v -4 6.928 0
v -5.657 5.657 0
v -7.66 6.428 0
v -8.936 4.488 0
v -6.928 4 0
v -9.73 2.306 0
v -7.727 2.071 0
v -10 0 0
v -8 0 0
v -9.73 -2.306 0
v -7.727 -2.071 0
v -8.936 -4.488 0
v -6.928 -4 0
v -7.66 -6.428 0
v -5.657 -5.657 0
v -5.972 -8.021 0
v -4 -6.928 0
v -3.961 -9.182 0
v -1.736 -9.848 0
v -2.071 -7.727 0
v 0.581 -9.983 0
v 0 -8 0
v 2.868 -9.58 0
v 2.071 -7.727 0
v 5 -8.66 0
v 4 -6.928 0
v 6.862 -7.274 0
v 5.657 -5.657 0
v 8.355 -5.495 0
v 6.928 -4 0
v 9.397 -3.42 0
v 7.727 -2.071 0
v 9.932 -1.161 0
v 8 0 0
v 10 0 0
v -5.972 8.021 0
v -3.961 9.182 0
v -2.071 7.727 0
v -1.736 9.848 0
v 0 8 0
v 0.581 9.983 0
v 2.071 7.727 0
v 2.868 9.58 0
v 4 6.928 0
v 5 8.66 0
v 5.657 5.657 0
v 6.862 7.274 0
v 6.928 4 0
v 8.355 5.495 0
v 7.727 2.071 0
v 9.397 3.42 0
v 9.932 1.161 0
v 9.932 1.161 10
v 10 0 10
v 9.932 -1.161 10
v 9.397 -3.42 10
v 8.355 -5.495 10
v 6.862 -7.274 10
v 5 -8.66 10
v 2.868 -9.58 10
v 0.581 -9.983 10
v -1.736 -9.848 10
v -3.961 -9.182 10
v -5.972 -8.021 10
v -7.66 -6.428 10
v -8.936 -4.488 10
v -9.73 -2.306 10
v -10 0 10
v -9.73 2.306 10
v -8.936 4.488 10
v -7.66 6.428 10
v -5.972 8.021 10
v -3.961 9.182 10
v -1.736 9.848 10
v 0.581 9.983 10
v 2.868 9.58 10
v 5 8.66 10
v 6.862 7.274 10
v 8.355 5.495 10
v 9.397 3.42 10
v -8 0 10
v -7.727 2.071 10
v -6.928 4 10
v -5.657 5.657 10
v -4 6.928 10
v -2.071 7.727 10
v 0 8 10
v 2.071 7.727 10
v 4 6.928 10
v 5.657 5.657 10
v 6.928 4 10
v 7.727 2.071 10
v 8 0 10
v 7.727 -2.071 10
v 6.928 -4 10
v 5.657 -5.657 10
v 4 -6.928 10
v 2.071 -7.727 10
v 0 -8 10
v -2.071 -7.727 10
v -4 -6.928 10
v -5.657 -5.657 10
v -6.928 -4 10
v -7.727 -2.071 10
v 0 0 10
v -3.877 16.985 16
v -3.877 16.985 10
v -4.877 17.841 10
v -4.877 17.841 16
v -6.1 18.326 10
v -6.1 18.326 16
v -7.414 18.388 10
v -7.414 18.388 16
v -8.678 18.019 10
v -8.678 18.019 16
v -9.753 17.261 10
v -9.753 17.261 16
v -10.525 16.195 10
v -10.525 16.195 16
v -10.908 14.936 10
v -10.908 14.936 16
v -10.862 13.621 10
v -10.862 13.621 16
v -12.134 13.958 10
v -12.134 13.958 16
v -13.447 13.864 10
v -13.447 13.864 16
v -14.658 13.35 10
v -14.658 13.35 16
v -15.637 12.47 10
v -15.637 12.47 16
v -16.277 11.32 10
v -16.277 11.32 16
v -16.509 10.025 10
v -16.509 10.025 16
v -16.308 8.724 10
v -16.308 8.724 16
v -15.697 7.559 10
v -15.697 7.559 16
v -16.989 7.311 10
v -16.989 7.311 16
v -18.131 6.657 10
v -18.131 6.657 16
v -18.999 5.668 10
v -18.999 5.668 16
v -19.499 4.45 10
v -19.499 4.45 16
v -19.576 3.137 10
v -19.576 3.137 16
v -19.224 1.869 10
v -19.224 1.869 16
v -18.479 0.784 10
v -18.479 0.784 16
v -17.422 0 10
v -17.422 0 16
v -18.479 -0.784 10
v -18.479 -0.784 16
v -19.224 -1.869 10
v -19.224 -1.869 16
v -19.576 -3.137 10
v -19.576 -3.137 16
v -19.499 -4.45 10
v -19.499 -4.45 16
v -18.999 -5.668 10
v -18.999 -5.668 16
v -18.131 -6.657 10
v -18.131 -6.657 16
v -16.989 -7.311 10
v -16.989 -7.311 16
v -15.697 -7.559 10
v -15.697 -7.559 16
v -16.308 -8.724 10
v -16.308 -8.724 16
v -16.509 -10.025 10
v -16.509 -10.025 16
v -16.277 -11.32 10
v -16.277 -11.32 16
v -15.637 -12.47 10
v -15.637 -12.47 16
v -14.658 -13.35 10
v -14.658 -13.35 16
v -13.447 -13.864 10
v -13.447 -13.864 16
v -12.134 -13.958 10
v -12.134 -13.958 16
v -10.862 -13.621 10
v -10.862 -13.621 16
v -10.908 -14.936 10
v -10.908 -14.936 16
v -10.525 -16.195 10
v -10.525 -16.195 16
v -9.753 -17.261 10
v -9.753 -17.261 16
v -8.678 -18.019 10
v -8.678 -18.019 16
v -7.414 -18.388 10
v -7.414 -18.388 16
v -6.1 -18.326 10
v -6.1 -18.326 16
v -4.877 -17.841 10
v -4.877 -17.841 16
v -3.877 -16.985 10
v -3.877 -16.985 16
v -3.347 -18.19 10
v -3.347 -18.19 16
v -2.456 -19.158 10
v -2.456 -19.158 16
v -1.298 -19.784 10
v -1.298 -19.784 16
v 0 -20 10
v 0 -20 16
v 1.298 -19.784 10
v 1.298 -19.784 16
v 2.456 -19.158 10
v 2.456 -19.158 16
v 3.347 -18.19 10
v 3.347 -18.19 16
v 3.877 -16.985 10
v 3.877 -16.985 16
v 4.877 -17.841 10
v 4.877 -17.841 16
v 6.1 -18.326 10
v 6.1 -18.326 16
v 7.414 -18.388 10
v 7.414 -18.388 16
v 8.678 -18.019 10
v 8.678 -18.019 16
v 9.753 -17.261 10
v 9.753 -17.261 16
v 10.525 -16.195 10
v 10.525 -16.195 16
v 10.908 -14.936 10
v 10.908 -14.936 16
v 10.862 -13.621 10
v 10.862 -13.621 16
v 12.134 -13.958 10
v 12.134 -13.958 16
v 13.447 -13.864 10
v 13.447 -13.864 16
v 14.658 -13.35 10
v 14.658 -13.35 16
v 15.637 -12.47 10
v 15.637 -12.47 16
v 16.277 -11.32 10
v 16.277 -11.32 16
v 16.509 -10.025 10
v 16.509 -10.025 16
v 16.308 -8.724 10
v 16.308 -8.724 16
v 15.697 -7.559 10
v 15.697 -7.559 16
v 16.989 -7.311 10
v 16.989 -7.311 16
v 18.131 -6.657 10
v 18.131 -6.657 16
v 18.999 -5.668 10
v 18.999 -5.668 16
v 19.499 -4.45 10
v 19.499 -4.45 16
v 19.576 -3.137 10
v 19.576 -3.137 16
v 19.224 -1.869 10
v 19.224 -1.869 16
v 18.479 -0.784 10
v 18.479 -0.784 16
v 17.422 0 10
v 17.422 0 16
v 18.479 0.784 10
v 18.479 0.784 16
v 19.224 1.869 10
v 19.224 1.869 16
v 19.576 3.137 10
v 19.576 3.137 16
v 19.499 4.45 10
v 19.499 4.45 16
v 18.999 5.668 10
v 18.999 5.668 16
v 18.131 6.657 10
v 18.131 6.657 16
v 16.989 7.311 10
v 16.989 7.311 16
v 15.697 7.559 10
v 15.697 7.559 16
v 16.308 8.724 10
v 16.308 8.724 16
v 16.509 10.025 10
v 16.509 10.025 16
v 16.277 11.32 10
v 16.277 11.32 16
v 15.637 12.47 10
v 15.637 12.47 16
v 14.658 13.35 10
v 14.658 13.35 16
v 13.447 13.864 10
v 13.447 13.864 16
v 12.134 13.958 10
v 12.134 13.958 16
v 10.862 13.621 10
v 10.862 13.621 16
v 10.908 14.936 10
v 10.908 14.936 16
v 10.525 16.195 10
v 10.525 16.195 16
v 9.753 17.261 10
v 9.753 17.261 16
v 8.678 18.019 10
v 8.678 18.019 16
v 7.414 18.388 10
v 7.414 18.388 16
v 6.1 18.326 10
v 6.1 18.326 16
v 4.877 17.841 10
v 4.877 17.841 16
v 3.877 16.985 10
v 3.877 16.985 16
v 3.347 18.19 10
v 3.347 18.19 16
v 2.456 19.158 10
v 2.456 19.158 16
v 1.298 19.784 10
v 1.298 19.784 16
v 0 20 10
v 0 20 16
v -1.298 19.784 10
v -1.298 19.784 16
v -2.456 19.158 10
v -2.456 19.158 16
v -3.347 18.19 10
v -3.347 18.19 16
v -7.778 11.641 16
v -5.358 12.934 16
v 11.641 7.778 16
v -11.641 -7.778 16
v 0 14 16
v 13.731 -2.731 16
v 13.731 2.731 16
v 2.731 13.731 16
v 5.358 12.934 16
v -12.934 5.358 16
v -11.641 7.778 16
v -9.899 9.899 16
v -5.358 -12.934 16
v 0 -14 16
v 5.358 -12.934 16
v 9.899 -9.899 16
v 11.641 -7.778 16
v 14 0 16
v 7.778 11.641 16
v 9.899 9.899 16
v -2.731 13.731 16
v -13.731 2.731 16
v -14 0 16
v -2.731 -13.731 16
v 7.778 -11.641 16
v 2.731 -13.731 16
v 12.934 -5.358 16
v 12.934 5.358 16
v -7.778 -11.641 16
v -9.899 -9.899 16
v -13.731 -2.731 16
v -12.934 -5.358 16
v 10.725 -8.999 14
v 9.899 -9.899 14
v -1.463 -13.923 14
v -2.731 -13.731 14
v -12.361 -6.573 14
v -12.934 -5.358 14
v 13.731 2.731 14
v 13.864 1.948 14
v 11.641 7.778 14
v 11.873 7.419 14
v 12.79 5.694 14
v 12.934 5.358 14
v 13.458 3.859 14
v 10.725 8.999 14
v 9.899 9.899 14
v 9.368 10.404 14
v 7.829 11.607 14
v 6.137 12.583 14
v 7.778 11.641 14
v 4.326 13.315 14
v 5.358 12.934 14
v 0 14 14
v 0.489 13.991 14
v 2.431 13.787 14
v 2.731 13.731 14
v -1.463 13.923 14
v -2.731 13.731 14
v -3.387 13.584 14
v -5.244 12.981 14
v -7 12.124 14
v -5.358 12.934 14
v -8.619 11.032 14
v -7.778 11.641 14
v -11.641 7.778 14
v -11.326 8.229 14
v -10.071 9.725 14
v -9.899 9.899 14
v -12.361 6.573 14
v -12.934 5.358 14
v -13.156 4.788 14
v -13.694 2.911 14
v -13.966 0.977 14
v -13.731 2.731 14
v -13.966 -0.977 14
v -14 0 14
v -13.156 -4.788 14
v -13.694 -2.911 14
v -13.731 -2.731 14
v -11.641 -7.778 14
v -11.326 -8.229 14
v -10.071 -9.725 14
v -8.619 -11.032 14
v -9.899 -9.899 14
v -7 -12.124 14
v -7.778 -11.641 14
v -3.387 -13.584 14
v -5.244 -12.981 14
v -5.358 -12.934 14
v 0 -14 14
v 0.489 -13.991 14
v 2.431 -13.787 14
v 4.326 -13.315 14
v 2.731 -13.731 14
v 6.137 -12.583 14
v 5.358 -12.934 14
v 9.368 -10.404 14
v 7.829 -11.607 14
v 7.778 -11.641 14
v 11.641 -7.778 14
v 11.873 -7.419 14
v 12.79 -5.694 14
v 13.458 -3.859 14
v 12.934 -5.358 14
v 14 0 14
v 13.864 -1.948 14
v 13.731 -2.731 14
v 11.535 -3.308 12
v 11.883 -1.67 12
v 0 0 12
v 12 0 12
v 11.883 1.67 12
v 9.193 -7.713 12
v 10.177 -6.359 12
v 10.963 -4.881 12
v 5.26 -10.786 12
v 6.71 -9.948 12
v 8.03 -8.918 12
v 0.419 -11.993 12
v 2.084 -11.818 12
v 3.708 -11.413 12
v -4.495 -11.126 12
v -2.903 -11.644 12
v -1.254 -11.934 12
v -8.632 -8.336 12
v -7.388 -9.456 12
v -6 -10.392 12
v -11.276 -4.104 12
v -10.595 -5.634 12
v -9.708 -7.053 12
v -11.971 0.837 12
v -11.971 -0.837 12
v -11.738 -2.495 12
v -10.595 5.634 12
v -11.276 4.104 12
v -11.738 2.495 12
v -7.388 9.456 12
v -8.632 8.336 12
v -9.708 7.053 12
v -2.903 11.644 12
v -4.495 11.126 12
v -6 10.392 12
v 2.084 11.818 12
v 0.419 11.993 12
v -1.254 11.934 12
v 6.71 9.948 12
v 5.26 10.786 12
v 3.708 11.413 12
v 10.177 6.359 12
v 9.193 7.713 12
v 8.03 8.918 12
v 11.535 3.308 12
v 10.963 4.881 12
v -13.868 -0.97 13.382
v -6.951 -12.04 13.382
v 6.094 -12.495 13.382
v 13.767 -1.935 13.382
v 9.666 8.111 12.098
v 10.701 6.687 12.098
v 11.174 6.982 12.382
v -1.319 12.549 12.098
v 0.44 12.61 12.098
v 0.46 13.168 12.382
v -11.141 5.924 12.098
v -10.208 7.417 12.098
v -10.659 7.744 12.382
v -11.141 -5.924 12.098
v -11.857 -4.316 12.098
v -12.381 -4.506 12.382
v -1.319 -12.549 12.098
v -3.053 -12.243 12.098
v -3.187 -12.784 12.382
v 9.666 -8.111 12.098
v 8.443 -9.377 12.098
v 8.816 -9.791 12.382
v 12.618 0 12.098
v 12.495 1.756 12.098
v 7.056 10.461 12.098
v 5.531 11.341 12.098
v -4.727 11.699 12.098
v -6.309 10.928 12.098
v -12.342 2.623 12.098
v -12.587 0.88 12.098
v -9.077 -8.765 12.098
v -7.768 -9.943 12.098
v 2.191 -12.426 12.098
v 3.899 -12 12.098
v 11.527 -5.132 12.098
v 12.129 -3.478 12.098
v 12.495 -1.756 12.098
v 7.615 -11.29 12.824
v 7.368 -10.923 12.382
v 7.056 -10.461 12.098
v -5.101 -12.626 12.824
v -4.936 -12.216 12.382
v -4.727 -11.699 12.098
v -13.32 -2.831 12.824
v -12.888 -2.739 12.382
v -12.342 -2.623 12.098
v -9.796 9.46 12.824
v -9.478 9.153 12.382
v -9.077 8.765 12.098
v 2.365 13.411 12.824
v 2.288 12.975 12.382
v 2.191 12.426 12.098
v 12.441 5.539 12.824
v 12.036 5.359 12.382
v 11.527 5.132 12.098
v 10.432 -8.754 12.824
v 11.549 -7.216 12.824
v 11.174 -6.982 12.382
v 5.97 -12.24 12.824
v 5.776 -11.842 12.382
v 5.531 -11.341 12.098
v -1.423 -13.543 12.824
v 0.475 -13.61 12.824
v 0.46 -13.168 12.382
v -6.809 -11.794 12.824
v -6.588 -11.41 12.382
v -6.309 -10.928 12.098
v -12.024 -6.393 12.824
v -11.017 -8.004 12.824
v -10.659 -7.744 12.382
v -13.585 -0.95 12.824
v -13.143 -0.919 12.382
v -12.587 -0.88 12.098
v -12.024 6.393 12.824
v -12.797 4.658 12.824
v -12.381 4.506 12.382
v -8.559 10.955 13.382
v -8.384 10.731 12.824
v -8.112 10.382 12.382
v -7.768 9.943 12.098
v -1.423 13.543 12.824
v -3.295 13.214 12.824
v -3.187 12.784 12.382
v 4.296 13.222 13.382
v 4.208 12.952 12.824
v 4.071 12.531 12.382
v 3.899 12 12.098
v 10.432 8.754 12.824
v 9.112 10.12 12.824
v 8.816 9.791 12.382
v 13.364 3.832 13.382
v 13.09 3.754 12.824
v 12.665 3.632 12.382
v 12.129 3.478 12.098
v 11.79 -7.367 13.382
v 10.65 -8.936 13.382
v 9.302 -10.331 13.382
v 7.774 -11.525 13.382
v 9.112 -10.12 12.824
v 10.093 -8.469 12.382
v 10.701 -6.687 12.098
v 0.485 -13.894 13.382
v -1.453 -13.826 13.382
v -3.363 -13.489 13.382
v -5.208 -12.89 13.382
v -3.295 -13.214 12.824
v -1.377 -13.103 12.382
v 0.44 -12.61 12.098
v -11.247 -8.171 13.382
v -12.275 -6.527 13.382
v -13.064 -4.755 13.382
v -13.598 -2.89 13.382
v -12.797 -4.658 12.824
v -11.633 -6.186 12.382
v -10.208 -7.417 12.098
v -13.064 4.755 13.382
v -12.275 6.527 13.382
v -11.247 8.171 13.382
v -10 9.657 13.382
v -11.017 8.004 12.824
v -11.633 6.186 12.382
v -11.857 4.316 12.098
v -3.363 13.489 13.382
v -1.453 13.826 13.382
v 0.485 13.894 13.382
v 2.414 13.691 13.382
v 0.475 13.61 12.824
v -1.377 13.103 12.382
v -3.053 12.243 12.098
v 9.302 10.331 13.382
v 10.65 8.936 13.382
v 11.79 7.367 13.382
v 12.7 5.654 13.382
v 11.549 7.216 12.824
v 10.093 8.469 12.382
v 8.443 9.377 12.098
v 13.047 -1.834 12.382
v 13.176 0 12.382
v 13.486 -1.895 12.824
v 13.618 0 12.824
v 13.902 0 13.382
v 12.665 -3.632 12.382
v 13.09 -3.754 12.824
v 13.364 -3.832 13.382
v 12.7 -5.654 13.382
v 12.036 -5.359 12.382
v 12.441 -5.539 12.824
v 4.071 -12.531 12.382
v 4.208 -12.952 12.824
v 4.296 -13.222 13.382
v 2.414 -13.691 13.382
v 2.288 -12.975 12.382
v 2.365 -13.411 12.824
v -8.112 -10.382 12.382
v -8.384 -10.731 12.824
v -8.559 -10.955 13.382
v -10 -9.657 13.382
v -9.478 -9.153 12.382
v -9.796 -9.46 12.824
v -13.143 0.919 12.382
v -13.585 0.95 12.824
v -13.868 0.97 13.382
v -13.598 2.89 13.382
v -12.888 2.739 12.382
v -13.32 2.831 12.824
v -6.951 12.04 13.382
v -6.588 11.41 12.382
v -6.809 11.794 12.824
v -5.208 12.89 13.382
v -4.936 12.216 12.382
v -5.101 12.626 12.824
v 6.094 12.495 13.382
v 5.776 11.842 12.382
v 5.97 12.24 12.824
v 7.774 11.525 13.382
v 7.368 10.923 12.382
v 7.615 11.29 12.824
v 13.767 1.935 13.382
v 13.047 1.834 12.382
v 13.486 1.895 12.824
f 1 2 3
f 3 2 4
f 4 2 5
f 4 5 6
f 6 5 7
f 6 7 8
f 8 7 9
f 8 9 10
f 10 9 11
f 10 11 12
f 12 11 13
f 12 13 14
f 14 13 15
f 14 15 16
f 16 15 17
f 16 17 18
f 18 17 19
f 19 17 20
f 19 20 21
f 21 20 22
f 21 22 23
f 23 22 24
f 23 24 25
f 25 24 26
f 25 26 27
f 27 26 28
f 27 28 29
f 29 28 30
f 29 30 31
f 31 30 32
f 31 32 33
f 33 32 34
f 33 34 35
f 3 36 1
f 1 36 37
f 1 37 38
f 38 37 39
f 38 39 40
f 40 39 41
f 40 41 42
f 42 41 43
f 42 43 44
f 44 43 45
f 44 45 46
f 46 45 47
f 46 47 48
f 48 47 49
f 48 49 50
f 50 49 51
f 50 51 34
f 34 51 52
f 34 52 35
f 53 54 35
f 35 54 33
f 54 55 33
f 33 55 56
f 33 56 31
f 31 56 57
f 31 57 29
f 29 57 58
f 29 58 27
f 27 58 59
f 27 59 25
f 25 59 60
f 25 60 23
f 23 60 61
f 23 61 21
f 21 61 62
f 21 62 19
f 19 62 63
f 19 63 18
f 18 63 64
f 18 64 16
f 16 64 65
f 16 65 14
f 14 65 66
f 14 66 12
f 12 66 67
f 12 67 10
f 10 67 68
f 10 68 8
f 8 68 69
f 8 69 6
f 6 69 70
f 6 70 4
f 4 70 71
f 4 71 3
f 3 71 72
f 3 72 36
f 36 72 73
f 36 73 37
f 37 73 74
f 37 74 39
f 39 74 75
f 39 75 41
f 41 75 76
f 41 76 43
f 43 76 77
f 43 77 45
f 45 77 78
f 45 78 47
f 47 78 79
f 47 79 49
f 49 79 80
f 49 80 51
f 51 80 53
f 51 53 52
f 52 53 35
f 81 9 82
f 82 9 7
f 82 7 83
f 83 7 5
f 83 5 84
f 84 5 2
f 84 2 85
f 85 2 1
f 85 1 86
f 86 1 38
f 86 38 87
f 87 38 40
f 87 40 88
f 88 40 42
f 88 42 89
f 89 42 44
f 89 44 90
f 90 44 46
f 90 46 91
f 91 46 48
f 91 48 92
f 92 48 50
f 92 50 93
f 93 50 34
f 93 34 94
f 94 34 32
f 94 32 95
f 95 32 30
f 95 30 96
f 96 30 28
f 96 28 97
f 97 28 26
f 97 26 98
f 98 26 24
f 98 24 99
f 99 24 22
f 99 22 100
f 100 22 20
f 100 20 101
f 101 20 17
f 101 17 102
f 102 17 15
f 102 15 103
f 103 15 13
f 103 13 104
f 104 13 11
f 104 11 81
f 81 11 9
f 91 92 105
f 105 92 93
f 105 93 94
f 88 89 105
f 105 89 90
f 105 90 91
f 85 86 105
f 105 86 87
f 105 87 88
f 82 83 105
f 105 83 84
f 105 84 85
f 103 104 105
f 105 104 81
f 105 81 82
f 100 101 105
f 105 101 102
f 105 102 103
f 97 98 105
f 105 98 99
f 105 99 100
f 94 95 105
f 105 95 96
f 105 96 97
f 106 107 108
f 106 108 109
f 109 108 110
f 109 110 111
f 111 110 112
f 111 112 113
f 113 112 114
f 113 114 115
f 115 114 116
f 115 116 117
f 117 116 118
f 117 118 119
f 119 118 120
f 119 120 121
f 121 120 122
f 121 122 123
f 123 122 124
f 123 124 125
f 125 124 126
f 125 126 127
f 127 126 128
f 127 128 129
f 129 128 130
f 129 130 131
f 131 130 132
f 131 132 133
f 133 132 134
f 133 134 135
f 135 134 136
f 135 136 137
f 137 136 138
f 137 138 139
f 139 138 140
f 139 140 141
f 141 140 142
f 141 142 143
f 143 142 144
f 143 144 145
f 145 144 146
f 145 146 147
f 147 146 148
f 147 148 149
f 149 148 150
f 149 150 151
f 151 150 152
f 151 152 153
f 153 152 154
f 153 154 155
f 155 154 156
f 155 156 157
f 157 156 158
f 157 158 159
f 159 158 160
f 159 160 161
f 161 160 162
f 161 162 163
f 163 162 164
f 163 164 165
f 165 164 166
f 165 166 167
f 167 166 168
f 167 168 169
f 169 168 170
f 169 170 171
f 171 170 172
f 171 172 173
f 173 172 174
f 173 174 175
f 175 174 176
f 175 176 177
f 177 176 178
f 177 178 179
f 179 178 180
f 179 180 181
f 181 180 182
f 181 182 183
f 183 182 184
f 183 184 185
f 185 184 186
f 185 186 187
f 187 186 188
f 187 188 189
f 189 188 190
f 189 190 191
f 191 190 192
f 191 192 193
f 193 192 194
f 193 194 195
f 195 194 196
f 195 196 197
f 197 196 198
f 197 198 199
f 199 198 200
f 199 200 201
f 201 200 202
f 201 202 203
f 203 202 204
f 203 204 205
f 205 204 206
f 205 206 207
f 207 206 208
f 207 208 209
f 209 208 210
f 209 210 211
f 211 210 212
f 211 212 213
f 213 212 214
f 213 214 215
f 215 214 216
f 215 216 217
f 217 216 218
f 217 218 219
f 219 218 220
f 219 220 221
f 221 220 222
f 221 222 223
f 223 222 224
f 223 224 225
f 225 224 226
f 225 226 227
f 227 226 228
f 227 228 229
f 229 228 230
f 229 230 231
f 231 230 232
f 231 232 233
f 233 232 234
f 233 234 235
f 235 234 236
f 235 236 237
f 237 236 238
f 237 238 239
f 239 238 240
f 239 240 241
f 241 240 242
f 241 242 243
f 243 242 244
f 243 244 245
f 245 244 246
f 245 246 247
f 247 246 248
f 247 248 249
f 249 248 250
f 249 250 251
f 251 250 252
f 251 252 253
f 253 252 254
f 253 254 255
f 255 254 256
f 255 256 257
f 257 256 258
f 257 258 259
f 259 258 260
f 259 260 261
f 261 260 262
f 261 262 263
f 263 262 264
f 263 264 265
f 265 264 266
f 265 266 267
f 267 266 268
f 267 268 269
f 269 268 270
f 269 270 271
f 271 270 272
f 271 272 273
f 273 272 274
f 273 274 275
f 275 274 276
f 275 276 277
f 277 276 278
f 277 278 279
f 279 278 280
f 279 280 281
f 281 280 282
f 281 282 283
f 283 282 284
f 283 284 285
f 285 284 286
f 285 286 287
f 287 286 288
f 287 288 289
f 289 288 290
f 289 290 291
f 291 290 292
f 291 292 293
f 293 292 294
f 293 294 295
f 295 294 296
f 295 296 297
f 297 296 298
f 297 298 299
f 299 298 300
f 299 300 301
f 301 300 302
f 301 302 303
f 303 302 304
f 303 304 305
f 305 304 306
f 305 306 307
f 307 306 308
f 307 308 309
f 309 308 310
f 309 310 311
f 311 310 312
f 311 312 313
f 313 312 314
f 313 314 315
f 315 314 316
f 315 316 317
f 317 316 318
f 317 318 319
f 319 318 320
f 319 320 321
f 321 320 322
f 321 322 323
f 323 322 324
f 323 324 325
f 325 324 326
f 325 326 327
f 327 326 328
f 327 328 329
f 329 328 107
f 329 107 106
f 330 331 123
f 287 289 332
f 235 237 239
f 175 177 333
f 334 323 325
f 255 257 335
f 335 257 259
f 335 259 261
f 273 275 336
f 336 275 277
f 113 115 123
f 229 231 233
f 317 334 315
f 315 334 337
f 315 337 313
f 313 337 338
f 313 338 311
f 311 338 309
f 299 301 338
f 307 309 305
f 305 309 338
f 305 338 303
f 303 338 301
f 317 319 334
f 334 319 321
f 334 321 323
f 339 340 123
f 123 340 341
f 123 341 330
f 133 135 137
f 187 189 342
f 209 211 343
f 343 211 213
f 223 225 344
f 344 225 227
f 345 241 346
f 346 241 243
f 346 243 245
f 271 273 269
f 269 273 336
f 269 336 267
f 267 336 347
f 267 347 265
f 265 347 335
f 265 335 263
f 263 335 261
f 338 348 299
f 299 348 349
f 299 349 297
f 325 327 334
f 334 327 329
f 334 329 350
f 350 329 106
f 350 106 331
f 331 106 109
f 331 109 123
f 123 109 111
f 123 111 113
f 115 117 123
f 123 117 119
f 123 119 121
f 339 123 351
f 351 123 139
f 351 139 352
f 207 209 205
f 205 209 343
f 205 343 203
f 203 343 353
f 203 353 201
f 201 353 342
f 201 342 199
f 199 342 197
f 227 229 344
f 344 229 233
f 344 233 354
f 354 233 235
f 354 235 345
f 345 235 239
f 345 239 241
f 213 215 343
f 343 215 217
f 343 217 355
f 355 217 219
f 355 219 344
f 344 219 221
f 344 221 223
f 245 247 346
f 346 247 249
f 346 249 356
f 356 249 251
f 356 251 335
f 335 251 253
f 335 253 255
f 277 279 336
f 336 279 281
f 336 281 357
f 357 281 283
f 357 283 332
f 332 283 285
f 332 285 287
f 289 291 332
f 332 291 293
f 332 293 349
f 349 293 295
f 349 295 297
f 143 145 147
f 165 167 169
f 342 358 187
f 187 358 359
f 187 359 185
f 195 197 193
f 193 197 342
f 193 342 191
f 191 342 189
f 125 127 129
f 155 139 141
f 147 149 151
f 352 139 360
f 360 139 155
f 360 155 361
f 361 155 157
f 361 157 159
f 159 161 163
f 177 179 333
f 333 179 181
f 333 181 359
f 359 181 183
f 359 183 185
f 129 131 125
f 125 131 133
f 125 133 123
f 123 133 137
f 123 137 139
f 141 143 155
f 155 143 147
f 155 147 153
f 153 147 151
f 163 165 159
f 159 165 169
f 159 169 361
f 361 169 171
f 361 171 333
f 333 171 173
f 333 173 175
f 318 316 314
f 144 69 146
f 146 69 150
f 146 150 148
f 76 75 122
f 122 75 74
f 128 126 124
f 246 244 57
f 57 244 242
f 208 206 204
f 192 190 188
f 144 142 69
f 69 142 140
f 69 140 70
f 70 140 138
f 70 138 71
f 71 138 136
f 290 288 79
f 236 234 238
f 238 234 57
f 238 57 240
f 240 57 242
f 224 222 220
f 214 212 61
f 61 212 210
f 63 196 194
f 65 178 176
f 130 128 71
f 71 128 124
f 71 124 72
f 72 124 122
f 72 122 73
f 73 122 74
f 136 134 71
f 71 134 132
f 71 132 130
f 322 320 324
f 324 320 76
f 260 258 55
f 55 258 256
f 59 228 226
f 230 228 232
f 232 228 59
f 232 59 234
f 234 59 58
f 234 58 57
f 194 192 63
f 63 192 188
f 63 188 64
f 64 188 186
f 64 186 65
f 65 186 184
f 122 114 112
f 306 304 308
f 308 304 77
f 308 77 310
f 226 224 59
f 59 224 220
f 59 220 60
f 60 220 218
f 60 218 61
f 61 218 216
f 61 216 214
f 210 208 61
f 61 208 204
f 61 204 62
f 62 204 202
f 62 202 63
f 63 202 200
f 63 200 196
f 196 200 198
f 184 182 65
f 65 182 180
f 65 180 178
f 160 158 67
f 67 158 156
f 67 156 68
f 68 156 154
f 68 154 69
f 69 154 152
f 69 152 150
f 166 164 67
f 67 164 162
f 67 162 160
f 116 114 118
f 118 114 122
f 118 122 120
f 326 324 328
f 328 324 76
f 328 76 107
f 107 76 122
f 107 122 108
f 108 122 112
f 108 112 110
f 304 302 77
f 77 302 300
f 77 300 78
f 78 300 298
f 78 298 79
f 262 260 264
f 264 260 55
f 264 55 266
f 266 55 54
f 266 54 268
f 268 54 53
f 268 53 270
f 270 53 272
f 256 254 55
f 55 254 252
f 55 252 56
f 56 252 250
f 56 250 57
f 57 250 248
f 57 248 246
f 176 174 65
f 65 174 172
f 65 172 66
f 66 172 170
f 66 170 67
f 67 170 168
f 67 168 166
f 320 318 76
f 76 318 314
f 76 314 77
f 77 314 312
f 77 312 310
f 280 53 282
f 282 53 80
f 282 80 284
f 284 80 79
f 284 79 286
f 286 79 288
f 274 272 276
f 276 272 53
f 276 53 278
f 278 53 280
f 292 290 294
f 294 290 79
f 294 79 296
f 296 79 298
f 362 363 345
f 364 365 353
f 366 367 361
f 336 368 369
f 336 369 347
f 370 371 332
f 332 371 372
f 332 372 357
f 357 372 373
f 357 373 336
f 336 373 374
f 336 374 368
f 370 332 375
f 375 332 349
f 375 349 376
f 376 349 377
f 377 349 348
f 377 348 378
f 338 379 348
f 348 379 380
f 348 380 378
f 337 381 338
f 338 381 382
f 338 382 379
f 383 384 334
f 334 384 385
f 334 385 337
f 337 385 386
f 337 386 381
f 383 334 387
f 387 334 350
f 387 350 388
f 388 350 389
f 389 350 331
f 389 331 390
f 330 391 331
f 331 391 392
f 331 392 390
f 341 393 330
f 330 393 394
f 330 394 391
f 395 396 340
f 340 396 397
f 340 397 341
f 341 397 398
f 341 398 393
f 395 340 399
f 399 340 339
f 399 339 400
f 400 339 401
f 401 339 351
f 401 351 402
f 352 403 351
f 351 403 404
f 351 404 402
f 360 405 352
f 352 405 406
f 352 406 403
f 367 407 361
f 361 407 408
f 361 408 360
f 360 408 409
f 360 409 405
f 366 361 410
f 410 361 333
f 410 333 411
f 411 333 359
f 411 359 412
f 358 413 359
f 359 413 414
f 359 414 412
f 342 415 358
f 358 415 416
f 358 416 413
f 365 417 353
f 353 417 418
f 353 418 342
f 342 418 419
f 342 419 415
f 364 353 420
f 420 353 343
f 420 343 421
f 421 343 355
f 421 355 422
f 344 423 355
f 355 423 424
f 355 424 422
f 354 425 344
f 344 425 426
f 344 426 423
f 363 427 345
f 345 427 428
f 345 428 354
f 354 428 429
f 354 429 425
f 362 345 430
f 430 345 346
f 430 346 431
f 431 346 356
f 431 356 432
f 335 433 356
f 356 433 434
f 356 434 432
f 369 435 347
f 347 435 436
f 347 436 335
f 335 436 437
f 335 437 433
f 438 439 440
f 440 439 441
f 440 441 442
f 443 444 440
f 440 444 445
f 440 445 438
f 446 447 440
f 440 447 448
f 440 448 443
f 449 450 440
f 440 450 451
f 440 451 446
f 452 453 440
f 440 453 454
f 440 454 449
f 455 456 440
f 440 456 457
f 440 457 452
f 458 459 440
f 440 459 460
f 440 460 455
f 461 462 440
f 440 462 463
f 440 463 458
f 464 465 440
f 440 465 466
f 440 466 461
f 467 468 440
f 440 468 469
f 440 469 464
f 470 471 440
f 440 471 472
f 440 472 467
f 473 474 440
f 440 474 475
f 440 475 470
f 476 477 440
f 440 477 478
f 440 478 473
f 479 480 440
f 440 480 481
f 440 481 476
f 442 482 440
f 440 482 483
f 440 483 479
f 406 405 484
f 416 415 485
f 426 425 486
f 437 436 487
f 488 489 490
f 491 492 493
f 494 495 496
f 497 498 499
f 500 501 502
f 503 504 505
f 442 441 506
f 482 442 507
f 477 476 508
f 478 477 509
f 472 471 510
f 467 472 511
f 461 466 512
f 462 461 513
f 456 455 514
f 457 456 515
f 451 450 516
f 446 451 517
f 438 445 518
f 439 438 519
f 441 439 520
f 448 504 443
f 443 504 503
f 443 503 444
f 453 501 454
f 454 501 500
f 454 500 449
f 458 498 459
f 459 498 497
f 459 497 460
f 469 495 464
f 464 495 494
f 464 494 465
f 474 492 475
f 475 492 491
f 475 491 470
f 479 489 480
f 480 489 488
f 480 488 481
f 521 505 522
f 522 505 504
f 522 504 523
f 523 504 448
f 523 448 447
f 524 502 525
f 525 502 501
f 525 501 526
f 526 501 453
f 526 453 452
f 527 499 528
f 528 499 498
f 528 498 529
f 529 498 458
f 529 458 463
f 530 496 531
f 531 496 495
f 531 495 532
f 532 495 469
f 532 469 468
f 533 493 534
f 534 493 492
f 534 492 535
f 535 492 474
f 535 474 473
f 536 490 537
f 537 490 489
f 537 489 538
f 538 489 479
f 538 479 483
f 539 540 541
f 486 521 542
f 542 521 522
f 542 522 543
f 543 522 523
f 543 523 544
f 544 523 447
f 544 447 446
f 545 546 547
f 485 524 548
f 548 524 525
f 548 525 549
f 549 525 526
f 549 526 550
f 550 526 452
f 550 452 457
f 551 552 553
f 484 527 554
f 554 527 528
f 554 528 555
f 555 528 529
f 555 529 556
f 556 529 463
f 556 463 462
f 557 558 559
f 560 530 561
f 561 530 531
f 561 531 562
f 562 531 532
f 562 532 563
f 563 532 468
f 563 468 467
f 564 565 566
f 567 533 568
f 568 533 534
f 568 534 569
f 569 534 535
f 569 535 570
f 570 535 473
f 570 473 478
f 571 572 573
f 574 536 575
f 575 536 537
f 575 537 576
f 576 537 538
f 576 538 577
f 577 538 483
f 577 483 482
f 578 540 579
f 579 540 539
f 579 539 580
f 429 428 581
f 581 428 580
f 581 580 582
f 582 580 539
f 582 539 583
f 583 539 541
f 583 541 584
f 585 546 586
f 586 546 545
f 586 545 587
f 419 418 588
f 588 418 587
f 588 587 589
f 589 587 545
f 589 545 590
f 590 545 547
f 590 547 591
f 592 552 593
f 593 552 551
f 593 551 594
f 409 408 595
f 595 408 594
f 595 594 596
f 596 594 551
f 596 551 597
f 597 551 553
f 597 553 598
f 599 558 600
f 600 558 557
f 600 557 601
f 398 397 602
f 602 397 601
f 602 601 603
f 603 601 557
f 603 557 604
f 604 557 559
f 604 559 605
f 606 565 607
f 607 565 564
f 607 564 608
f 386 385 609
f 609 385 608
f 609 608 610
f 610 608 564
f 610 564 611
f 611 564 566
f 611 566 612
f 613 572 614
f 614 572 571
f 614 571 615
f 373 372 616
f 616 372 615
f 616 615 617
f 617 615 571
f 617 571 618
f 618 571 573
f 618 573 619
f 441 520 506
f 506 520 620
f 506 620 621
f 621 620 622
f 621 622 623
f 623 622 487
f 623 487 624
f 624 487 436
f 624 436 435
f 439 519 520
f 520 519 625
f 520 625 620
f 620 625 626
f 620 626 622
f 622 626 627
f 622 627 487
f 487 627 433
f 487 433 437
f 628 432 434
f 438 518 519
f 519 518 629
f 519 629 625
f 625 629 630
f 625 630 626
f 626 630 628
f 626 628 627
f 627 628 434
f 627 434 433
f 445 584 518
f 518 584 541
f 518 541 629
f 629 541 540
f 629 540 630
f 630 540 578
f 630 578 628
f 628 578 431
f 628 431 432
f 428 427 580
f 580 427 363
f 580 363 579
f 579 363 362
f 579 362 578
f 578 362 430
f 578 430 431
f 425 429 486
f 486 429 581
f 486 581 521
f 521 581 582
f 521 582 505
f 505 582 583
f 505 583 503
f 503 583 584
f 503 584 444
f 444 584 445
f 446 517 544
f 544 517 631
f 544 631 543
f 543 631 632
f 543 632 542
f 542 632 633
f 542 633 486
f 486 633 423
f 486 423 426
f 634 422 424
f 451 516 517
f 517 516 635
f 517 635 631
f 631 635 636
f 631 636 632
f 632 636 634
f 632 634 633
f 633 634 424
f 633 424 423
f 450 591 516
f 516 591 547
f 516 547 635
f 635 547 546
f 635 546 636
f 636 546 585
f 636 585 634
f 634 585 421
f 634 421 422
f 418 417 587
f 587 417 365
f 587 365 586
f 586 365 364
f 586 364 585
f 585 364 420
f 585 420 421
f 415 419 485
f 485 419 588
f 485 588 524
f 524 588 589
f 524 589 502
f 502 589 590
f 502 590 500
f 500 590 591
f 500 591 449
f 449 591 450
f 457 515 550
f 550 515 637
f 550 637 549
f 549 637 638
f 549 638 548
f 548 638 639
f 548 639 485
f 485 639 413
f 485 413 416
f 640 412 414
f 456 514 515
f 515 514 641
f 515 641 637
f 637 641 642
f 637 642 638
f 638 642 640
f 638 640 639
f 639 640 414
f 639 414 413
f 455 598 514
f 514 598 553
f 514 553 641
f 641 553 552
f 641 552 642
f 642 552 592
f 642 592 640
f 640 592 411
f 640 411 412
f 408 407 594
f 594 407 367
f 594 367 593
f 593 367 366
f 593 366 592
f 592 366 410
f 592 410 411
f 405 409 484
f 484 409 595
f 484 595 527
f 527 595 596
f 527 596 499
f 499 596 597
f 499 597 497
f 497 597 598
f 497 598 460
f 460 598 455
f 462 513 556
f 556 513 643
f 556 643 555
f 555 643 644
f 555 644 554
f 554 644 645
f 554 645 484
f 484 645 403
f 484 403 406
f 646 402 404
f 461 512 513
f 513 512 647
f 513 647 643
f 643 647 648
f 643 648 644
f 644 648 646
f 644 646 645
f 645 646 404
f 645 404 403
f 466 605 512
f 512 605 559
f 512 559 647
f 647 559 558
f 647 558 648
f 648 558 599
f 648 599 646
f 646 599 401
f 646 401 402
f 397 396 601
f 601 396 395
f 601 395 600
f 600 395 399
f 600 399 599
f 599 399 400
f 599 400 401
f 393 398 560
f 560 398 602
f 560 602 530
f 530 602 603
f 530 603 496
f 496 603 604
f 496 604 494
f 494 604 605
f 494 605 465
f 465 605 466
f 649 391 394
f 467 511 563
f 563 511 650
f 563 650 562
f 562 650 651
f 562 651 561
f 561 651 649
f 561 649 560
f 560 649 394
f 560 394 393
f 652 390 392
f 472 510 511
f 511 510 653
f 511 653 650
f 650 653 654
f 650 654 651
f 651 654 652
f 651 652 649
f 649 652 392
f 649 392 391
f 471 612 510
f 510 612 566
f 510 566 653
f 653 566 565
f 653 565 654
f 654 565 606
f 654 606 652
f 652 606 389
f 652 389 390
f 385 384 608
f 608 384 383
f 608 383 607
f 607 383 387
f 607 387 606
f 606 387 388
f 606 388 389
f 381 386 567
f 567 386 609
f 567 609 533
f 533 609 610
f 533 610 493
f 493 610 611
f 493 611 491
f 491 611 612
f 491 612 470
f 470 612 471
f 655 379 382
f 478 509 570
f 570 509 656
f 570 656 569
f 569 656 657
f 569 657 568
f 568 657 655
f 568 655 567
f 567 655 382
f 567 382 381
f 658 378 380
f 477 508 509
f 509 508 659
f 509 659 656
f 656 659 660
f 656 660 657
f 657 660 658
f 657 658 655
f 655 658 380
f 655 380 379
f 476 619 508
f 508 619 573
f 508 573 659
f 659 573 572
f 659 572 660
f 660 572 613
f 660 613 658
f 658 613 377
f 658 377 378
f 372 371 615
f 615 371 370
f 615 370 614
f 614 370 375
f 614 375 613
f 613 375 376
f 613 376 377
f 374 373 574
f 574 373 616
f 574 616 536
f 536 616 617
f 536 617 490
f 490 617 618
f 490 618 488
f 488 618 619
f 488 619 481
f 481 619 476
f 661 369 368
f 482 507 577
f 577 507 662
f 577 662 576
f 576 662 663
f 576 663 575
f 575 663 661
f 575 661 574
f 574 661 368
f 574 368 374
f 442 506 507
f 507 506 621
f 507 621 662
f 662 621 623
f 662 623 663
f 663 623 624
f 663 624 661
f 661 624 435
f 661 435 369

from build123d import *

# Parameters (mm, degrees)
SKETCH_1_R          = 10
SKETCH_1_R_2        = 8
EXTRUDE_1_DEPTH     = 10
EXTRUDE_2_DEPTH     = 6
SKETCH_3_R          = 14
CUT_EXTRUDE_1_DEPTH = 4
FILLET_1_R          = 2


with BuildPart() as part:
    # Эскиз1 → Бобышка-Вытянуть1 (new body)
    with BuildSketch(Plane.XY):
        Circle(SKETCH_1_R)
        Circle(SKETCH_1_R_2, mode=Mode.SUBTRACT)
    extrude(amount=EXTRUDE_1_DEPTH)

    # Эскиз2 → Бобышка-Вытянуть2 (add)
    with BuildSketch(Plane.XY.offset(10)):
        with BuildLine():
            ThreePointArc((3.876767447, 16.985227976), (0, 20), (-3.876767447, 16.985227976))
            ThreePointArc((-3.876767447, 16.985227976), (-8.677674782, 18.019377358), (-10.862461002, 13.621095265))
            ThreePointArc((-10.862461002, 13.621095265), (-15.636629649, 12.469796037), (-15.696710936, 7.559137585))
            ThreePointArc((-15.696710936, 7.559137585), (-19.498558244, 4.450418679), (-17.422034762, 0))
            ThreePointArc((-17.422034762, 0), (-19.498558244, -4.450418679), (-15.696710936, -7.559137585))
            ThreePointArc((-15.696710936, -7.559137585), (-15.636629649, -12.469796037), (-10.862461002, -13.621095265))
            ThreePointArc((-10.862461002, -13.621095265), (-8.677674782, -18.019377358), (-3.876767447, -16.985227976))
            ThreePointArc((-3.876767447, -16.985227976), (0, -20), (3.876767447, -16.985227976))
            ThreePointArc((3.876767447, -16.985227976), (8.677674782, -18.019377358), (10.862461002, -13.621095265))
            ThreePointArc((10.862461002, -13.621095265), (15.636629649, -12.469796037), (15.696710936, -7.559137585))
            ThreePointArc((15.696710936, -7.559137585), (19.498558244, -4.450418679), (17.422034762, 0))
            ThreePointArc((17.422034762, 0), (19.498558244, 4.450418679), (15.696710936, 7.559137585))
            ThreePointArc((15.696710936, 7.559137585), (15.636629649, 12.469796037), (10.862461002, 13.621095265))
            ThreePointArc((10.862461002, 13.621095265), (8.677674782, 18.019377358), (3.876767447, 16.985227976))
        make_face()
    extrude(amount=EXTRUDE_2_DEPTH)

    # Эскиз3 → Вырез-Вытянуть1 (cut)
    with BuildSketch(Plane.XY.offset(16)):
        Circle(SKETCH_3_R)
    extrude(amount=-CUT_EXTRUDE_1_DEPTH, mode=Mode.SUBTRACT)

    # Скругление1
    fillet_1_edges = [part.edges().sort_by_distance(p)[0] for p in [
        (-14, 0, 12),
    ]]
    fillet(fillet_1_edges, radius=FILLET_1_R)


solid = part.part
